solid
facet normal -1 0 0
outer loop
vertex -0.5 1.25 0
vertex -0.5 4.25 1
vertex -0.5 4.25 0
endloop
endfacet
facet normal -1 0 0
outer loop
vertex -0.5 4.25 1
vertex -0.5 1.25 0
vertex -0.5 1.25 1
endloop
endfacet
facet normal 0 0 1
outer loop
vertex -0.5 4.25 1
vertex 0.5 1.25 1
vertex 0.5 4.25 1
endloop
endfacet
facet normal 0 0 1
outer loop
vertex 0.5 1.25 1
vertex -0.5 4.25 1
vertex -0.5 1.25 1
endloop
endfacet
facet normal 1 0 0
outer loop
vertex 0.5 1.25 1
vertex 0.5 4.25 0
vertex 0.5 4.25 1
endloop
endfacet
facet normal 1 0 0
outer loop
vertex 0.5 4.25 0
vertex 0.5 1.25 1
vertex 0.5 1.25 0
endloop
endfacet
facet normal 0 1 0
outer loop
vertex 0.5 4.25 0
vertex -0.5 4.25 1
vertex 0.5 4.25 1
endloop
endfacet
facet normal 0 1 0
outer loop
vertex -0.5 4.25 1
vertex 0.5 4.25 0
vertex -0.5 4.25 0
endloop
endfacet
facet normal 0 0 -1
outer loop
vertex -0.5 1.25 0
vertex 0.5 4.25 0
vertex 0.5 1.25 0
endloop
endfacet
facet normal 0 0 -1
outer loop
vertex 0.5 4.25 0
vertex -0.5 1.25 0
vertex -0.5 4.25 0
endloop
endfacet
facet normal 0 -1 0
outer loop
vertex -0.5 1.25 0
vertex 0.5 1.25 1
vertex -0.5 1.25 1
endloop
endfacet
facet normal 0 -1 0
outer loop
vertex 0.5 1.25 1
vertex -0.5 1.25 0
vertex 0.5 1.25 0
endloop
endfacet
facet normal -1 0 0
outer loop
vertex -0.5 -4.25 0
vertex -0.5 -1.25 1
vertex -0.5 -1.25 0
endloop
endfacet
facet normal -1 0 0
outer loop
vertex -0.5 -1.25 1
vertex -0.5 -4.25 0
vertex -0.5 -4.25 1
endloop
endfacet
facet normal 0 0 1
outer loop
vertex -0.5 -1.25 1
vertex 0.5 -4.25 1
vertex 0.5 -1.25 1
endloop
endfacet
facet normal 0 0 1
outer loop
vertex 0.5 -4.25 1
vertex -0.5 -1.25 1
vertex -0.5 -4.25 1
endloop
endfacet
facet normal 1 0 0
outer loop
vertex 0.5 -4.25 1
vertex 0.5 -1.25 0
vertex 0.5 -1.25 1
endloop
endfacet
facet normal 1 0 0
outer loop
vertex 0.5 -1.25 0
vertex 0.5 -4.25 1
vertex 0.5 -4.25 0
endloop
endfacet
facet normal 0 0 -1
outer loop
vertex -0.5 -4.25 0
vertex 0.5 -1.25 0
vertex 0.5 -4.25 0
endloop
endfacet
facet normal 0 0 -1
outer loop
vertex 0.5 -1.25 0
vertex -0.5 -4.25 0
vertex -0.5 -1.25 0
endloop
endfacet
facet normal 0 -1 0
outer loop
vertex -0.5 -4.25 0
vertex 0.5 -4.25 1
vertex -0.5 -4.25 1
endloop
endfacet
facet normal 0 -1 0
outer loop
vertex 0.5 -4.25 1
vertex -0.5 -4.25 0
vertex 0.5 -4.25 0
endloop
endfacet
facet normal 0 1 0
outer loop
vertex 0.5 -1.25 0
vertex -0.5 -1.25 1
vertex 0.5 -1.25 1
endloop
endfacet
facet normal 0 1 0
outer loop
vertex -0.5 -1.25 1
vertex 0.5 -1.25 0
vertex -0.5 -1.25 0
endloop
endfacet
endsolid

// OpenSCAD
translate([-0.5,1.25,0])
    {
    cube([1,3,1]);
    }
 translate([-0.5,-4.25,0])
 {
        cube([1,3,1]);
 }
